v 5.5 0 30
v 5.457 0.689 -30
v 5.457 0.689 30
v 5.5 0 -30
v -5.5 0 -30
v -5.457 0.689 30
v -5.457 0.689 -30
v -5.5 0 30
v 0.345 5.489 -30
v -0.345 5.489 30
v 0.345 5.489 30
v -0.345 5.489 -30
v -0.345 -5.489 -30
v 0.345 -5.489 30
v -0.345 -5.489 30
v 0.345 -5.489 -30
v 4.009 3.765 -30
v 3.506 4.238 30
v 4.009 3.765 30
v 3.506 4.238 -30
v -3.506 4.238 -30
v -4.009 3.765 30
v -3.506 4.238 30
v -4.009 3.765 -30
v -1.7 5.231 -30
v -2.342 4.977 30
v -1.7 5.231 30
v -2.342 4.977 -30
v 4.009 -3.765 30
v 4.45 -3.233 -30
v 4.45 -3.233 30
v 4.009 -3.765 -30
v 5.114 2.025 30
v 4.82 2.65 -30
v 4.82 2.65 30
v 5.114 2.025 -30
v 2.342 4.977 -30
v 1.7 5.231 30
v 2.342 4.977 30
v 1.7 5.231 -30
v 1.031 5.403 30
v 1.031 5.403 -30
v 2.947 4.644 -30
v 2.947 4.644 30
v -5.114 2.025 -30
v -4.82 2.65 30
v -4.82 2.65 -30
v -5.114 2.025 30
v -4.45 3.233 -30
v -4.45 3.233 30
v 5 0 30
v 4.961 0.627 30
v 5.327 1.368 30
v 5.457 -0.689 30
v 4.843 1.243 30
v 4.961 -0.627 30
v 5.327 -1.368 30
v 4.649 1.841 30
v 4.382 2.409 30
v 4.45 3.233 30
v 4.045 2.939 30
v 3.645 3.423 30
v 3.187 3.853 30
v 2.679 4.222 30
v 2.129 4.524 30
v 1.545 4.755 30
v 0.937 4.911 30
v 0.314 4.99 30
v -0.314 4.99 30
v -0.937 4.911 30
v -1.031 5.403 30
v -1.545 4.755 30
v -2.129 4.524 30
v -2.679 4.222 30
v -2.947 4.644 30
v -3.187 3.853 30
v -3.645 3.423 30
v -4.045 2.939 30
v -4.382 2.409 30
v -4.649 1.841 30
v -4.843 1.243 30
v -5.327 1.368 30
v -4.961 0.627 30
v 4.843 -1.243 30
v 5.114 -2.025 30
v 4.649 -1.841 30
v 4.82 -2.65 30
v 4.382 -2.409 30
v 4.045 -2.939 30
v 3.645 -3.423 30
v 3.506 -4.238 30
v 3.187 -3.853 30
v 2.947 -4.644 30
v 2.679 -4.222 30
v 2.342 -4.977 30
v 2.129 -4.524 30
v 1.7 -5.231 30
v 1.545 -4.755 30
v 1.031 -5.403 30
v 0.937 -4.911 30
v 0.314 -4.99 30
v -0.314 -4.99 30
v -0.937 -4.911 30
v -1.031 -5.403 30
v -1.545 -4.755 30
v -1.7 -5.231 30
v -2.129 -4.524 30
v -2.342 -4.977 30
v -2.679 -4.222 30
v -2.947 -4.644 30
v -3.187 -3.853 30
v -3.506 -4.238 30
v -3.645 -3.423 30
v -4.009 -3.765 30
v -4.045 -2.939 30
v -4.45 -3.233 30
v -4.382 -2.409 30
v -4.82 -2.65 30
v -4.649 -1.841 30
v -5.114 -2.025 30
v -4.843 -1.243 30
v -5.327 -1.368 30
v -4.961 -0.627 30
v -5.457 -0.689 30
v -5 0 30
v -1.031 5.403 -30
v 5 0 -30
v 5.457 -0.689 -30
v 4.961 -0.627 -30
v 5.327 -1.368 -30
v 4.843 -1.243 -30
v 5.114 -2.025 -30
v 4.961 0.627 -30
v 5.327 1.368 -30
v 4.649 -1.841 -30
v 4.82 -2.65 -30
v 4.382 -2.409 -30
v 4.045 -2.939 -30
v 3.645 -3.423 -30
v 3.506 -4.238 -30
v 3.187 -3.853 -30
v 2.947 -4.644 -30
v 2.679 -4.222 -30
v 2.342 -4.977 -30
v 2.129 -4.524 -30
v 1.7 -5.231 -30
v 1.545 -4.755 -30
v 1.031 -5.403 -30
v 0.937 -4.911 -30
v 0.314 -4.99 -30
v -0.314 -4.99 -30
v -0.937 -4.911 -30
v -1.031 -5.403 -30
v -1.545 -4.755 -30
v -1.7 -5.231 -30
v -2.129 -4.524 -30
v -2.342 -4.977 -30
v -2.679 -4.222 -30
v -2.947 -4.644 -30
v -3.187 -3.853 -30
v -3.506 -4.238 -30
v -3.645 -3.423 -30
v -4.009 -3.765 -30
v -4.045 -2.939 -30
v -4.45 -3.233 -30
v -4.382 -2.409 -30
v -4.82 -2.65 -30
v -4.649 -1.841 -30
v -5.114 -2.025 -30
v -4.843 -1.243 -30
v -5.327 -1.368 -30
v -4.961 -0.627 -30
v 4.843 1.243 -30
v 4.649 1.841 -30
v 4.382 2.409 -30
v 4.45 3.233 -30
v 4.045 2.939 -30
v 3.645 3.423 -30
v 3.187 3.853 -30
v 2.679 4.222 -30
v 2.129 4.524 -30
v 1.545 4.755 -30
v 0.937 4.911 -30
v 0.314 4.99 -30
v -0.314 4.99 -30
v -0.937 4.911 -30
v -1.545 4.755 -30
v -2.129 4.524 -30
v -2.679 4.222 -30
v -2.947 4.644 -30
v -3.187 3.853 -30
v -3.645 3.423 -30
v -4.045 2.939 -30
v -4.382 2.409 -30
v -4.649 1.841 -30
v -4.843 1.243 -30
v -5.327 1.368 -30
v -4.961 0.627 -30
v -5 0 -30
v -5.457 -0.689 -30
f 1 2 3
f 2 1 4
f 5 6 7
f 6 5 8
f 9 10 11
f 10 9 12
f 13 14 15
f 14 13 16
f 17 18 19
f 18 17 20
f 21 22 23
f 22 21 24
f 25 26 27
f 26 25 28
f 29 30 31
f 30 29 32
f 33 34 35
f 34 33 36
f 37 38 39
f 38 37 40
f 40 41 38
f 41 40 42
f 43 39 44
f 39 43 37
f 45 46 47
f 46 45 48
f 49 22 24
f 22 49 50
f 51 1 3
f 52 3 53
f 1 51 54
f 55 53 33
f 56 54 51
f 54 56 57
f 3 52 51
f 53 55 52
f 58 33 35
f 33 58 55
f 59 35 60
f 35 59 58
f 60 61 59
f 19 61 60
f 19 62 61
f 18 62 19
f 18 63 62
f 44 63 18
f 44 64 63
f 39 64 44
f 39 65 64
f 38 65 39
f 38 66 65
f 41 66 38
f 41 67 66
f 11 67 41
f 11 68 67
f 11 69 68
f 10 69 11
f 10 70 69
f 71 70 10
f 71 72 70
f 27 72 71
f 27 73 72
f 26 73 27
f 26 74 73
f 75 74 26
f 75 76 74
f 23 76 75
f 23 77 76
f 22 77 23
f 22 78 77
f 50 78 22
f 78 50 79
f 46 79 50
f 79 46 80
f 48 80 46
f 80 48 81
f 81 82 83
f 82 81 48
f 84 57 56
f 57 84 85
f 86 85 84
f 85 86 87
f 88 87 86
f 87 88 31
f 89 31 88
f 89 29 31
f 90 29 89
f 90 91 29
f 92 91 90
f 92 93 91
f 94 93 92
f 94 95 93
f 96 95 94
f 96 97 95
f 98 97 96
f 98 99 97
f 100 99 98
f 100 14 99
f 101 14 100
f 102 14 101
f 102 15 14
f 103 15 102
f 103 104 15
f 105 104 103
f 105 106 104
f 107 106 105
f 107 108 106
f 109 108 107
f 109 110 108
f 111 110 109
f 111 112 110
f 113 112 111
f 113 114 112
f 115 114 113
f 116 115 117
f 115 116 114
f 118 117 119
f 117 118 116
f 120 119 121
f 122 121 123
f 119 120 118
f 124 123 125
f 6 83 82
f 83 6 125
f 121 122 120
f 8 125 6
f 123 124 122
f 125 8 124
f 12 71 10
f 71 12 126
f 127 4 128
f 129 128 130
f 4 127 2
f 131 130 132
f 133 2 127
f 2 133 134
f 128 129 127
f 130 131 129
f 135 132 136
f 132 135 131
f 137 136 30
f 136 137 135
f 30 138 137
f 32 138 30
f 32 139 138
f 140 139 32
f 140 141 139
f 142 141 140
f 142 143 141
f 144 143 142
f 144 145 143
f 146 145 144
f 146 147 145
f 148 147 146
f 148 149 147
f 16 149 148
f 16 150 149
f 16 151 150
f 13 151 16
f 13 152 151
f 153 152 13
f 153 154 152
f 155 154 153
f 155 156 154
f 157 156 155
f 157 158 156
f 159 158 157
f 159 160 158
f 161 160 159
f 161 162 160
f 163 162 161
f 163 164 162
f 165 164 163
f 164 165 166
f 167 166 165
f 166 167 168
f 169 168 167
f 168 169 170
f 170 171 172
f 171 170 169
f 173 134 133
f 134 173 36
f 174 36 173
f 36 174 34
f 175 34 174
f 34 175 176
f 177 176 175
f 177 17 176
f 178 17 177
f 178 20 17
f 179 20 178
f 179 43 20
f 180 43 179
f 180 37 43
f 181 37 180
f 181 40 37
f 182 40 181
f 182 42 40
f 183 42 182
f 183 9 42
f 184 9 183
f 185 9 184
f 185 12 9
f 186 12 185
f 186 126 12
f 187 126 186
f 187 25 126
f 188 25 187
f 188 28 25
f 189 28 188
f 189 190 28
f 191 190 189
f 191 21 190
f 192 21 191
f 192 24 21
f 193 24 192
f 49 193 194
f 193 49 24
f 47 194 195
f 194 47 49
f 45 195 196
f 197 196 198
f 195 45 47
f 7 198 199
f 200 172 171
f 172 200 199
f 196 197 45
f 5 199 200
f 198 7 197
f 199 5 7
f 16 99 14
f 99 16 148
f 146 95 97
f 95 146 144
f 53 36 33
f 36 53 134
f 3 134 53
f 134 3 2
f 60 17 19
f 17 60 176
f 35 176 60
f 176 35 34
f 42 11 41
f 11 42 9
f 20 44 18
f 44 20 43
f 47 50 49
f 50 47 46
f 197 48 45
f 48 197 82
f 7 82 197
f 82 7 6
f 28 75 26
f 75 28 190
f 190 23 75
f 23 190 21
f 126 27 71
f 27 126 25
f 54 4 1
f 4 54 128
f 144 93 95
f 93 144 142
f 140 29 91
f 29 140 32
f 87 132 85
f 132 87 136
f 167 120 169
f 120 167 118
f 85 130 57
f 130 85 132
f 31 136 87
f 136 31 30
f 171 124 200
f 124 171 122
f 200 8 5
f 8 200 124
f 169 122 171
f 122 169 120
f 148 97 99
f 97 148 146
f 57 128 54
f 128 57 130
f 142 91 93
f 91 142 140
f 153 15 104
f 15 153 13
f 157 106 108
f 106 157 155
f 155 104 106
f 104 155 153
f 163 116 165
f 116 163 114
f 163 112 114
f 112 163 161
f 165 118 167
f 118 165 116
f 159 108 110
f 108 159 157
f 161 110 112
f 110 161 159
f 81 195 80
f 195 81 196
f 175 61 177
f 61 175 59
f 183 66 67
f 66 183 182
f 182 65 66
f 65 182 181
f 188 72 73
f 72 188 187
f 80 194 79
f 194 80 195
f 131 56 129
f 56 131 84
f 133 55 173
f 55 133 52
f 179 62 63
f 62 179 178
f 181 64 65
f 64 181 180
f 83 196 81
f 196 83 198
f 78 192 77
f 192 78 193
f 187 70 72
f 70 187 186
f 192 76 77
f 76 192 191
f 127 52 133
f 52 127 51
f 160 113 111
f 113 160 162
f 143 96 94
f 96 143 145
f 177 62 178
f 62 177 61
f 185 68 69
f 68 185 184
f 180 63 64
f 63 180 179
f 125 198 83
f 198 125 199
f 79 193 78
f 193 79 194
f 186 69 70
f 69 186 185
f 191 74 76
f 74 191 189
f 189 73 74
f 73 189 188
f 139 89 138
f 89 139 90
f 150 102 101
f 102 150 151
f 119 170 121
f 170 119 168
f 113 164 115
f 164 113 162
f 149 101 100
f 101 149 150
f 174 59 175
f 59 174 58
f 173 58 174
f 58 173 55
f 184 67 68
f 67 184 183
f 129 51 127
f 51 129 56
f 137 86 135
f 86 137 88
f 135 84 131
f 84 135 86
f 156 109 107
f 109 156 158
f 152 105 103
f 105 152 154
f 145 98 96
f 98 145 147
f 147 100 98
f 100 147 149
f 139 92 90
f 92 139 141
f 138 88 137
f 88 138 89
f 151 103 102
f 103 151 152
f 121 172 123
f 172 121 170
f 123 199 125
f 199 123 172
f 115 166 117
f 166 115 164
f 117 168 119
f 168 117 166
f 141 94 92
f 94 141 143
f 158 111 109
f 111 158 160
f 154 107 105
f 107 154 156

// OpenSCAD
$fn = 50;


difference() {
	union() {
		translate(v = [0, 0, -30.0000000000]) {
			cylinder(h = 60, r = 5.5000000000);
		}
	}
	union() {
		translate(v = [0, 0, -100.0000000000]) {
			cylinder(h = 200, r = 5.0000000000);
		}
	}
}
